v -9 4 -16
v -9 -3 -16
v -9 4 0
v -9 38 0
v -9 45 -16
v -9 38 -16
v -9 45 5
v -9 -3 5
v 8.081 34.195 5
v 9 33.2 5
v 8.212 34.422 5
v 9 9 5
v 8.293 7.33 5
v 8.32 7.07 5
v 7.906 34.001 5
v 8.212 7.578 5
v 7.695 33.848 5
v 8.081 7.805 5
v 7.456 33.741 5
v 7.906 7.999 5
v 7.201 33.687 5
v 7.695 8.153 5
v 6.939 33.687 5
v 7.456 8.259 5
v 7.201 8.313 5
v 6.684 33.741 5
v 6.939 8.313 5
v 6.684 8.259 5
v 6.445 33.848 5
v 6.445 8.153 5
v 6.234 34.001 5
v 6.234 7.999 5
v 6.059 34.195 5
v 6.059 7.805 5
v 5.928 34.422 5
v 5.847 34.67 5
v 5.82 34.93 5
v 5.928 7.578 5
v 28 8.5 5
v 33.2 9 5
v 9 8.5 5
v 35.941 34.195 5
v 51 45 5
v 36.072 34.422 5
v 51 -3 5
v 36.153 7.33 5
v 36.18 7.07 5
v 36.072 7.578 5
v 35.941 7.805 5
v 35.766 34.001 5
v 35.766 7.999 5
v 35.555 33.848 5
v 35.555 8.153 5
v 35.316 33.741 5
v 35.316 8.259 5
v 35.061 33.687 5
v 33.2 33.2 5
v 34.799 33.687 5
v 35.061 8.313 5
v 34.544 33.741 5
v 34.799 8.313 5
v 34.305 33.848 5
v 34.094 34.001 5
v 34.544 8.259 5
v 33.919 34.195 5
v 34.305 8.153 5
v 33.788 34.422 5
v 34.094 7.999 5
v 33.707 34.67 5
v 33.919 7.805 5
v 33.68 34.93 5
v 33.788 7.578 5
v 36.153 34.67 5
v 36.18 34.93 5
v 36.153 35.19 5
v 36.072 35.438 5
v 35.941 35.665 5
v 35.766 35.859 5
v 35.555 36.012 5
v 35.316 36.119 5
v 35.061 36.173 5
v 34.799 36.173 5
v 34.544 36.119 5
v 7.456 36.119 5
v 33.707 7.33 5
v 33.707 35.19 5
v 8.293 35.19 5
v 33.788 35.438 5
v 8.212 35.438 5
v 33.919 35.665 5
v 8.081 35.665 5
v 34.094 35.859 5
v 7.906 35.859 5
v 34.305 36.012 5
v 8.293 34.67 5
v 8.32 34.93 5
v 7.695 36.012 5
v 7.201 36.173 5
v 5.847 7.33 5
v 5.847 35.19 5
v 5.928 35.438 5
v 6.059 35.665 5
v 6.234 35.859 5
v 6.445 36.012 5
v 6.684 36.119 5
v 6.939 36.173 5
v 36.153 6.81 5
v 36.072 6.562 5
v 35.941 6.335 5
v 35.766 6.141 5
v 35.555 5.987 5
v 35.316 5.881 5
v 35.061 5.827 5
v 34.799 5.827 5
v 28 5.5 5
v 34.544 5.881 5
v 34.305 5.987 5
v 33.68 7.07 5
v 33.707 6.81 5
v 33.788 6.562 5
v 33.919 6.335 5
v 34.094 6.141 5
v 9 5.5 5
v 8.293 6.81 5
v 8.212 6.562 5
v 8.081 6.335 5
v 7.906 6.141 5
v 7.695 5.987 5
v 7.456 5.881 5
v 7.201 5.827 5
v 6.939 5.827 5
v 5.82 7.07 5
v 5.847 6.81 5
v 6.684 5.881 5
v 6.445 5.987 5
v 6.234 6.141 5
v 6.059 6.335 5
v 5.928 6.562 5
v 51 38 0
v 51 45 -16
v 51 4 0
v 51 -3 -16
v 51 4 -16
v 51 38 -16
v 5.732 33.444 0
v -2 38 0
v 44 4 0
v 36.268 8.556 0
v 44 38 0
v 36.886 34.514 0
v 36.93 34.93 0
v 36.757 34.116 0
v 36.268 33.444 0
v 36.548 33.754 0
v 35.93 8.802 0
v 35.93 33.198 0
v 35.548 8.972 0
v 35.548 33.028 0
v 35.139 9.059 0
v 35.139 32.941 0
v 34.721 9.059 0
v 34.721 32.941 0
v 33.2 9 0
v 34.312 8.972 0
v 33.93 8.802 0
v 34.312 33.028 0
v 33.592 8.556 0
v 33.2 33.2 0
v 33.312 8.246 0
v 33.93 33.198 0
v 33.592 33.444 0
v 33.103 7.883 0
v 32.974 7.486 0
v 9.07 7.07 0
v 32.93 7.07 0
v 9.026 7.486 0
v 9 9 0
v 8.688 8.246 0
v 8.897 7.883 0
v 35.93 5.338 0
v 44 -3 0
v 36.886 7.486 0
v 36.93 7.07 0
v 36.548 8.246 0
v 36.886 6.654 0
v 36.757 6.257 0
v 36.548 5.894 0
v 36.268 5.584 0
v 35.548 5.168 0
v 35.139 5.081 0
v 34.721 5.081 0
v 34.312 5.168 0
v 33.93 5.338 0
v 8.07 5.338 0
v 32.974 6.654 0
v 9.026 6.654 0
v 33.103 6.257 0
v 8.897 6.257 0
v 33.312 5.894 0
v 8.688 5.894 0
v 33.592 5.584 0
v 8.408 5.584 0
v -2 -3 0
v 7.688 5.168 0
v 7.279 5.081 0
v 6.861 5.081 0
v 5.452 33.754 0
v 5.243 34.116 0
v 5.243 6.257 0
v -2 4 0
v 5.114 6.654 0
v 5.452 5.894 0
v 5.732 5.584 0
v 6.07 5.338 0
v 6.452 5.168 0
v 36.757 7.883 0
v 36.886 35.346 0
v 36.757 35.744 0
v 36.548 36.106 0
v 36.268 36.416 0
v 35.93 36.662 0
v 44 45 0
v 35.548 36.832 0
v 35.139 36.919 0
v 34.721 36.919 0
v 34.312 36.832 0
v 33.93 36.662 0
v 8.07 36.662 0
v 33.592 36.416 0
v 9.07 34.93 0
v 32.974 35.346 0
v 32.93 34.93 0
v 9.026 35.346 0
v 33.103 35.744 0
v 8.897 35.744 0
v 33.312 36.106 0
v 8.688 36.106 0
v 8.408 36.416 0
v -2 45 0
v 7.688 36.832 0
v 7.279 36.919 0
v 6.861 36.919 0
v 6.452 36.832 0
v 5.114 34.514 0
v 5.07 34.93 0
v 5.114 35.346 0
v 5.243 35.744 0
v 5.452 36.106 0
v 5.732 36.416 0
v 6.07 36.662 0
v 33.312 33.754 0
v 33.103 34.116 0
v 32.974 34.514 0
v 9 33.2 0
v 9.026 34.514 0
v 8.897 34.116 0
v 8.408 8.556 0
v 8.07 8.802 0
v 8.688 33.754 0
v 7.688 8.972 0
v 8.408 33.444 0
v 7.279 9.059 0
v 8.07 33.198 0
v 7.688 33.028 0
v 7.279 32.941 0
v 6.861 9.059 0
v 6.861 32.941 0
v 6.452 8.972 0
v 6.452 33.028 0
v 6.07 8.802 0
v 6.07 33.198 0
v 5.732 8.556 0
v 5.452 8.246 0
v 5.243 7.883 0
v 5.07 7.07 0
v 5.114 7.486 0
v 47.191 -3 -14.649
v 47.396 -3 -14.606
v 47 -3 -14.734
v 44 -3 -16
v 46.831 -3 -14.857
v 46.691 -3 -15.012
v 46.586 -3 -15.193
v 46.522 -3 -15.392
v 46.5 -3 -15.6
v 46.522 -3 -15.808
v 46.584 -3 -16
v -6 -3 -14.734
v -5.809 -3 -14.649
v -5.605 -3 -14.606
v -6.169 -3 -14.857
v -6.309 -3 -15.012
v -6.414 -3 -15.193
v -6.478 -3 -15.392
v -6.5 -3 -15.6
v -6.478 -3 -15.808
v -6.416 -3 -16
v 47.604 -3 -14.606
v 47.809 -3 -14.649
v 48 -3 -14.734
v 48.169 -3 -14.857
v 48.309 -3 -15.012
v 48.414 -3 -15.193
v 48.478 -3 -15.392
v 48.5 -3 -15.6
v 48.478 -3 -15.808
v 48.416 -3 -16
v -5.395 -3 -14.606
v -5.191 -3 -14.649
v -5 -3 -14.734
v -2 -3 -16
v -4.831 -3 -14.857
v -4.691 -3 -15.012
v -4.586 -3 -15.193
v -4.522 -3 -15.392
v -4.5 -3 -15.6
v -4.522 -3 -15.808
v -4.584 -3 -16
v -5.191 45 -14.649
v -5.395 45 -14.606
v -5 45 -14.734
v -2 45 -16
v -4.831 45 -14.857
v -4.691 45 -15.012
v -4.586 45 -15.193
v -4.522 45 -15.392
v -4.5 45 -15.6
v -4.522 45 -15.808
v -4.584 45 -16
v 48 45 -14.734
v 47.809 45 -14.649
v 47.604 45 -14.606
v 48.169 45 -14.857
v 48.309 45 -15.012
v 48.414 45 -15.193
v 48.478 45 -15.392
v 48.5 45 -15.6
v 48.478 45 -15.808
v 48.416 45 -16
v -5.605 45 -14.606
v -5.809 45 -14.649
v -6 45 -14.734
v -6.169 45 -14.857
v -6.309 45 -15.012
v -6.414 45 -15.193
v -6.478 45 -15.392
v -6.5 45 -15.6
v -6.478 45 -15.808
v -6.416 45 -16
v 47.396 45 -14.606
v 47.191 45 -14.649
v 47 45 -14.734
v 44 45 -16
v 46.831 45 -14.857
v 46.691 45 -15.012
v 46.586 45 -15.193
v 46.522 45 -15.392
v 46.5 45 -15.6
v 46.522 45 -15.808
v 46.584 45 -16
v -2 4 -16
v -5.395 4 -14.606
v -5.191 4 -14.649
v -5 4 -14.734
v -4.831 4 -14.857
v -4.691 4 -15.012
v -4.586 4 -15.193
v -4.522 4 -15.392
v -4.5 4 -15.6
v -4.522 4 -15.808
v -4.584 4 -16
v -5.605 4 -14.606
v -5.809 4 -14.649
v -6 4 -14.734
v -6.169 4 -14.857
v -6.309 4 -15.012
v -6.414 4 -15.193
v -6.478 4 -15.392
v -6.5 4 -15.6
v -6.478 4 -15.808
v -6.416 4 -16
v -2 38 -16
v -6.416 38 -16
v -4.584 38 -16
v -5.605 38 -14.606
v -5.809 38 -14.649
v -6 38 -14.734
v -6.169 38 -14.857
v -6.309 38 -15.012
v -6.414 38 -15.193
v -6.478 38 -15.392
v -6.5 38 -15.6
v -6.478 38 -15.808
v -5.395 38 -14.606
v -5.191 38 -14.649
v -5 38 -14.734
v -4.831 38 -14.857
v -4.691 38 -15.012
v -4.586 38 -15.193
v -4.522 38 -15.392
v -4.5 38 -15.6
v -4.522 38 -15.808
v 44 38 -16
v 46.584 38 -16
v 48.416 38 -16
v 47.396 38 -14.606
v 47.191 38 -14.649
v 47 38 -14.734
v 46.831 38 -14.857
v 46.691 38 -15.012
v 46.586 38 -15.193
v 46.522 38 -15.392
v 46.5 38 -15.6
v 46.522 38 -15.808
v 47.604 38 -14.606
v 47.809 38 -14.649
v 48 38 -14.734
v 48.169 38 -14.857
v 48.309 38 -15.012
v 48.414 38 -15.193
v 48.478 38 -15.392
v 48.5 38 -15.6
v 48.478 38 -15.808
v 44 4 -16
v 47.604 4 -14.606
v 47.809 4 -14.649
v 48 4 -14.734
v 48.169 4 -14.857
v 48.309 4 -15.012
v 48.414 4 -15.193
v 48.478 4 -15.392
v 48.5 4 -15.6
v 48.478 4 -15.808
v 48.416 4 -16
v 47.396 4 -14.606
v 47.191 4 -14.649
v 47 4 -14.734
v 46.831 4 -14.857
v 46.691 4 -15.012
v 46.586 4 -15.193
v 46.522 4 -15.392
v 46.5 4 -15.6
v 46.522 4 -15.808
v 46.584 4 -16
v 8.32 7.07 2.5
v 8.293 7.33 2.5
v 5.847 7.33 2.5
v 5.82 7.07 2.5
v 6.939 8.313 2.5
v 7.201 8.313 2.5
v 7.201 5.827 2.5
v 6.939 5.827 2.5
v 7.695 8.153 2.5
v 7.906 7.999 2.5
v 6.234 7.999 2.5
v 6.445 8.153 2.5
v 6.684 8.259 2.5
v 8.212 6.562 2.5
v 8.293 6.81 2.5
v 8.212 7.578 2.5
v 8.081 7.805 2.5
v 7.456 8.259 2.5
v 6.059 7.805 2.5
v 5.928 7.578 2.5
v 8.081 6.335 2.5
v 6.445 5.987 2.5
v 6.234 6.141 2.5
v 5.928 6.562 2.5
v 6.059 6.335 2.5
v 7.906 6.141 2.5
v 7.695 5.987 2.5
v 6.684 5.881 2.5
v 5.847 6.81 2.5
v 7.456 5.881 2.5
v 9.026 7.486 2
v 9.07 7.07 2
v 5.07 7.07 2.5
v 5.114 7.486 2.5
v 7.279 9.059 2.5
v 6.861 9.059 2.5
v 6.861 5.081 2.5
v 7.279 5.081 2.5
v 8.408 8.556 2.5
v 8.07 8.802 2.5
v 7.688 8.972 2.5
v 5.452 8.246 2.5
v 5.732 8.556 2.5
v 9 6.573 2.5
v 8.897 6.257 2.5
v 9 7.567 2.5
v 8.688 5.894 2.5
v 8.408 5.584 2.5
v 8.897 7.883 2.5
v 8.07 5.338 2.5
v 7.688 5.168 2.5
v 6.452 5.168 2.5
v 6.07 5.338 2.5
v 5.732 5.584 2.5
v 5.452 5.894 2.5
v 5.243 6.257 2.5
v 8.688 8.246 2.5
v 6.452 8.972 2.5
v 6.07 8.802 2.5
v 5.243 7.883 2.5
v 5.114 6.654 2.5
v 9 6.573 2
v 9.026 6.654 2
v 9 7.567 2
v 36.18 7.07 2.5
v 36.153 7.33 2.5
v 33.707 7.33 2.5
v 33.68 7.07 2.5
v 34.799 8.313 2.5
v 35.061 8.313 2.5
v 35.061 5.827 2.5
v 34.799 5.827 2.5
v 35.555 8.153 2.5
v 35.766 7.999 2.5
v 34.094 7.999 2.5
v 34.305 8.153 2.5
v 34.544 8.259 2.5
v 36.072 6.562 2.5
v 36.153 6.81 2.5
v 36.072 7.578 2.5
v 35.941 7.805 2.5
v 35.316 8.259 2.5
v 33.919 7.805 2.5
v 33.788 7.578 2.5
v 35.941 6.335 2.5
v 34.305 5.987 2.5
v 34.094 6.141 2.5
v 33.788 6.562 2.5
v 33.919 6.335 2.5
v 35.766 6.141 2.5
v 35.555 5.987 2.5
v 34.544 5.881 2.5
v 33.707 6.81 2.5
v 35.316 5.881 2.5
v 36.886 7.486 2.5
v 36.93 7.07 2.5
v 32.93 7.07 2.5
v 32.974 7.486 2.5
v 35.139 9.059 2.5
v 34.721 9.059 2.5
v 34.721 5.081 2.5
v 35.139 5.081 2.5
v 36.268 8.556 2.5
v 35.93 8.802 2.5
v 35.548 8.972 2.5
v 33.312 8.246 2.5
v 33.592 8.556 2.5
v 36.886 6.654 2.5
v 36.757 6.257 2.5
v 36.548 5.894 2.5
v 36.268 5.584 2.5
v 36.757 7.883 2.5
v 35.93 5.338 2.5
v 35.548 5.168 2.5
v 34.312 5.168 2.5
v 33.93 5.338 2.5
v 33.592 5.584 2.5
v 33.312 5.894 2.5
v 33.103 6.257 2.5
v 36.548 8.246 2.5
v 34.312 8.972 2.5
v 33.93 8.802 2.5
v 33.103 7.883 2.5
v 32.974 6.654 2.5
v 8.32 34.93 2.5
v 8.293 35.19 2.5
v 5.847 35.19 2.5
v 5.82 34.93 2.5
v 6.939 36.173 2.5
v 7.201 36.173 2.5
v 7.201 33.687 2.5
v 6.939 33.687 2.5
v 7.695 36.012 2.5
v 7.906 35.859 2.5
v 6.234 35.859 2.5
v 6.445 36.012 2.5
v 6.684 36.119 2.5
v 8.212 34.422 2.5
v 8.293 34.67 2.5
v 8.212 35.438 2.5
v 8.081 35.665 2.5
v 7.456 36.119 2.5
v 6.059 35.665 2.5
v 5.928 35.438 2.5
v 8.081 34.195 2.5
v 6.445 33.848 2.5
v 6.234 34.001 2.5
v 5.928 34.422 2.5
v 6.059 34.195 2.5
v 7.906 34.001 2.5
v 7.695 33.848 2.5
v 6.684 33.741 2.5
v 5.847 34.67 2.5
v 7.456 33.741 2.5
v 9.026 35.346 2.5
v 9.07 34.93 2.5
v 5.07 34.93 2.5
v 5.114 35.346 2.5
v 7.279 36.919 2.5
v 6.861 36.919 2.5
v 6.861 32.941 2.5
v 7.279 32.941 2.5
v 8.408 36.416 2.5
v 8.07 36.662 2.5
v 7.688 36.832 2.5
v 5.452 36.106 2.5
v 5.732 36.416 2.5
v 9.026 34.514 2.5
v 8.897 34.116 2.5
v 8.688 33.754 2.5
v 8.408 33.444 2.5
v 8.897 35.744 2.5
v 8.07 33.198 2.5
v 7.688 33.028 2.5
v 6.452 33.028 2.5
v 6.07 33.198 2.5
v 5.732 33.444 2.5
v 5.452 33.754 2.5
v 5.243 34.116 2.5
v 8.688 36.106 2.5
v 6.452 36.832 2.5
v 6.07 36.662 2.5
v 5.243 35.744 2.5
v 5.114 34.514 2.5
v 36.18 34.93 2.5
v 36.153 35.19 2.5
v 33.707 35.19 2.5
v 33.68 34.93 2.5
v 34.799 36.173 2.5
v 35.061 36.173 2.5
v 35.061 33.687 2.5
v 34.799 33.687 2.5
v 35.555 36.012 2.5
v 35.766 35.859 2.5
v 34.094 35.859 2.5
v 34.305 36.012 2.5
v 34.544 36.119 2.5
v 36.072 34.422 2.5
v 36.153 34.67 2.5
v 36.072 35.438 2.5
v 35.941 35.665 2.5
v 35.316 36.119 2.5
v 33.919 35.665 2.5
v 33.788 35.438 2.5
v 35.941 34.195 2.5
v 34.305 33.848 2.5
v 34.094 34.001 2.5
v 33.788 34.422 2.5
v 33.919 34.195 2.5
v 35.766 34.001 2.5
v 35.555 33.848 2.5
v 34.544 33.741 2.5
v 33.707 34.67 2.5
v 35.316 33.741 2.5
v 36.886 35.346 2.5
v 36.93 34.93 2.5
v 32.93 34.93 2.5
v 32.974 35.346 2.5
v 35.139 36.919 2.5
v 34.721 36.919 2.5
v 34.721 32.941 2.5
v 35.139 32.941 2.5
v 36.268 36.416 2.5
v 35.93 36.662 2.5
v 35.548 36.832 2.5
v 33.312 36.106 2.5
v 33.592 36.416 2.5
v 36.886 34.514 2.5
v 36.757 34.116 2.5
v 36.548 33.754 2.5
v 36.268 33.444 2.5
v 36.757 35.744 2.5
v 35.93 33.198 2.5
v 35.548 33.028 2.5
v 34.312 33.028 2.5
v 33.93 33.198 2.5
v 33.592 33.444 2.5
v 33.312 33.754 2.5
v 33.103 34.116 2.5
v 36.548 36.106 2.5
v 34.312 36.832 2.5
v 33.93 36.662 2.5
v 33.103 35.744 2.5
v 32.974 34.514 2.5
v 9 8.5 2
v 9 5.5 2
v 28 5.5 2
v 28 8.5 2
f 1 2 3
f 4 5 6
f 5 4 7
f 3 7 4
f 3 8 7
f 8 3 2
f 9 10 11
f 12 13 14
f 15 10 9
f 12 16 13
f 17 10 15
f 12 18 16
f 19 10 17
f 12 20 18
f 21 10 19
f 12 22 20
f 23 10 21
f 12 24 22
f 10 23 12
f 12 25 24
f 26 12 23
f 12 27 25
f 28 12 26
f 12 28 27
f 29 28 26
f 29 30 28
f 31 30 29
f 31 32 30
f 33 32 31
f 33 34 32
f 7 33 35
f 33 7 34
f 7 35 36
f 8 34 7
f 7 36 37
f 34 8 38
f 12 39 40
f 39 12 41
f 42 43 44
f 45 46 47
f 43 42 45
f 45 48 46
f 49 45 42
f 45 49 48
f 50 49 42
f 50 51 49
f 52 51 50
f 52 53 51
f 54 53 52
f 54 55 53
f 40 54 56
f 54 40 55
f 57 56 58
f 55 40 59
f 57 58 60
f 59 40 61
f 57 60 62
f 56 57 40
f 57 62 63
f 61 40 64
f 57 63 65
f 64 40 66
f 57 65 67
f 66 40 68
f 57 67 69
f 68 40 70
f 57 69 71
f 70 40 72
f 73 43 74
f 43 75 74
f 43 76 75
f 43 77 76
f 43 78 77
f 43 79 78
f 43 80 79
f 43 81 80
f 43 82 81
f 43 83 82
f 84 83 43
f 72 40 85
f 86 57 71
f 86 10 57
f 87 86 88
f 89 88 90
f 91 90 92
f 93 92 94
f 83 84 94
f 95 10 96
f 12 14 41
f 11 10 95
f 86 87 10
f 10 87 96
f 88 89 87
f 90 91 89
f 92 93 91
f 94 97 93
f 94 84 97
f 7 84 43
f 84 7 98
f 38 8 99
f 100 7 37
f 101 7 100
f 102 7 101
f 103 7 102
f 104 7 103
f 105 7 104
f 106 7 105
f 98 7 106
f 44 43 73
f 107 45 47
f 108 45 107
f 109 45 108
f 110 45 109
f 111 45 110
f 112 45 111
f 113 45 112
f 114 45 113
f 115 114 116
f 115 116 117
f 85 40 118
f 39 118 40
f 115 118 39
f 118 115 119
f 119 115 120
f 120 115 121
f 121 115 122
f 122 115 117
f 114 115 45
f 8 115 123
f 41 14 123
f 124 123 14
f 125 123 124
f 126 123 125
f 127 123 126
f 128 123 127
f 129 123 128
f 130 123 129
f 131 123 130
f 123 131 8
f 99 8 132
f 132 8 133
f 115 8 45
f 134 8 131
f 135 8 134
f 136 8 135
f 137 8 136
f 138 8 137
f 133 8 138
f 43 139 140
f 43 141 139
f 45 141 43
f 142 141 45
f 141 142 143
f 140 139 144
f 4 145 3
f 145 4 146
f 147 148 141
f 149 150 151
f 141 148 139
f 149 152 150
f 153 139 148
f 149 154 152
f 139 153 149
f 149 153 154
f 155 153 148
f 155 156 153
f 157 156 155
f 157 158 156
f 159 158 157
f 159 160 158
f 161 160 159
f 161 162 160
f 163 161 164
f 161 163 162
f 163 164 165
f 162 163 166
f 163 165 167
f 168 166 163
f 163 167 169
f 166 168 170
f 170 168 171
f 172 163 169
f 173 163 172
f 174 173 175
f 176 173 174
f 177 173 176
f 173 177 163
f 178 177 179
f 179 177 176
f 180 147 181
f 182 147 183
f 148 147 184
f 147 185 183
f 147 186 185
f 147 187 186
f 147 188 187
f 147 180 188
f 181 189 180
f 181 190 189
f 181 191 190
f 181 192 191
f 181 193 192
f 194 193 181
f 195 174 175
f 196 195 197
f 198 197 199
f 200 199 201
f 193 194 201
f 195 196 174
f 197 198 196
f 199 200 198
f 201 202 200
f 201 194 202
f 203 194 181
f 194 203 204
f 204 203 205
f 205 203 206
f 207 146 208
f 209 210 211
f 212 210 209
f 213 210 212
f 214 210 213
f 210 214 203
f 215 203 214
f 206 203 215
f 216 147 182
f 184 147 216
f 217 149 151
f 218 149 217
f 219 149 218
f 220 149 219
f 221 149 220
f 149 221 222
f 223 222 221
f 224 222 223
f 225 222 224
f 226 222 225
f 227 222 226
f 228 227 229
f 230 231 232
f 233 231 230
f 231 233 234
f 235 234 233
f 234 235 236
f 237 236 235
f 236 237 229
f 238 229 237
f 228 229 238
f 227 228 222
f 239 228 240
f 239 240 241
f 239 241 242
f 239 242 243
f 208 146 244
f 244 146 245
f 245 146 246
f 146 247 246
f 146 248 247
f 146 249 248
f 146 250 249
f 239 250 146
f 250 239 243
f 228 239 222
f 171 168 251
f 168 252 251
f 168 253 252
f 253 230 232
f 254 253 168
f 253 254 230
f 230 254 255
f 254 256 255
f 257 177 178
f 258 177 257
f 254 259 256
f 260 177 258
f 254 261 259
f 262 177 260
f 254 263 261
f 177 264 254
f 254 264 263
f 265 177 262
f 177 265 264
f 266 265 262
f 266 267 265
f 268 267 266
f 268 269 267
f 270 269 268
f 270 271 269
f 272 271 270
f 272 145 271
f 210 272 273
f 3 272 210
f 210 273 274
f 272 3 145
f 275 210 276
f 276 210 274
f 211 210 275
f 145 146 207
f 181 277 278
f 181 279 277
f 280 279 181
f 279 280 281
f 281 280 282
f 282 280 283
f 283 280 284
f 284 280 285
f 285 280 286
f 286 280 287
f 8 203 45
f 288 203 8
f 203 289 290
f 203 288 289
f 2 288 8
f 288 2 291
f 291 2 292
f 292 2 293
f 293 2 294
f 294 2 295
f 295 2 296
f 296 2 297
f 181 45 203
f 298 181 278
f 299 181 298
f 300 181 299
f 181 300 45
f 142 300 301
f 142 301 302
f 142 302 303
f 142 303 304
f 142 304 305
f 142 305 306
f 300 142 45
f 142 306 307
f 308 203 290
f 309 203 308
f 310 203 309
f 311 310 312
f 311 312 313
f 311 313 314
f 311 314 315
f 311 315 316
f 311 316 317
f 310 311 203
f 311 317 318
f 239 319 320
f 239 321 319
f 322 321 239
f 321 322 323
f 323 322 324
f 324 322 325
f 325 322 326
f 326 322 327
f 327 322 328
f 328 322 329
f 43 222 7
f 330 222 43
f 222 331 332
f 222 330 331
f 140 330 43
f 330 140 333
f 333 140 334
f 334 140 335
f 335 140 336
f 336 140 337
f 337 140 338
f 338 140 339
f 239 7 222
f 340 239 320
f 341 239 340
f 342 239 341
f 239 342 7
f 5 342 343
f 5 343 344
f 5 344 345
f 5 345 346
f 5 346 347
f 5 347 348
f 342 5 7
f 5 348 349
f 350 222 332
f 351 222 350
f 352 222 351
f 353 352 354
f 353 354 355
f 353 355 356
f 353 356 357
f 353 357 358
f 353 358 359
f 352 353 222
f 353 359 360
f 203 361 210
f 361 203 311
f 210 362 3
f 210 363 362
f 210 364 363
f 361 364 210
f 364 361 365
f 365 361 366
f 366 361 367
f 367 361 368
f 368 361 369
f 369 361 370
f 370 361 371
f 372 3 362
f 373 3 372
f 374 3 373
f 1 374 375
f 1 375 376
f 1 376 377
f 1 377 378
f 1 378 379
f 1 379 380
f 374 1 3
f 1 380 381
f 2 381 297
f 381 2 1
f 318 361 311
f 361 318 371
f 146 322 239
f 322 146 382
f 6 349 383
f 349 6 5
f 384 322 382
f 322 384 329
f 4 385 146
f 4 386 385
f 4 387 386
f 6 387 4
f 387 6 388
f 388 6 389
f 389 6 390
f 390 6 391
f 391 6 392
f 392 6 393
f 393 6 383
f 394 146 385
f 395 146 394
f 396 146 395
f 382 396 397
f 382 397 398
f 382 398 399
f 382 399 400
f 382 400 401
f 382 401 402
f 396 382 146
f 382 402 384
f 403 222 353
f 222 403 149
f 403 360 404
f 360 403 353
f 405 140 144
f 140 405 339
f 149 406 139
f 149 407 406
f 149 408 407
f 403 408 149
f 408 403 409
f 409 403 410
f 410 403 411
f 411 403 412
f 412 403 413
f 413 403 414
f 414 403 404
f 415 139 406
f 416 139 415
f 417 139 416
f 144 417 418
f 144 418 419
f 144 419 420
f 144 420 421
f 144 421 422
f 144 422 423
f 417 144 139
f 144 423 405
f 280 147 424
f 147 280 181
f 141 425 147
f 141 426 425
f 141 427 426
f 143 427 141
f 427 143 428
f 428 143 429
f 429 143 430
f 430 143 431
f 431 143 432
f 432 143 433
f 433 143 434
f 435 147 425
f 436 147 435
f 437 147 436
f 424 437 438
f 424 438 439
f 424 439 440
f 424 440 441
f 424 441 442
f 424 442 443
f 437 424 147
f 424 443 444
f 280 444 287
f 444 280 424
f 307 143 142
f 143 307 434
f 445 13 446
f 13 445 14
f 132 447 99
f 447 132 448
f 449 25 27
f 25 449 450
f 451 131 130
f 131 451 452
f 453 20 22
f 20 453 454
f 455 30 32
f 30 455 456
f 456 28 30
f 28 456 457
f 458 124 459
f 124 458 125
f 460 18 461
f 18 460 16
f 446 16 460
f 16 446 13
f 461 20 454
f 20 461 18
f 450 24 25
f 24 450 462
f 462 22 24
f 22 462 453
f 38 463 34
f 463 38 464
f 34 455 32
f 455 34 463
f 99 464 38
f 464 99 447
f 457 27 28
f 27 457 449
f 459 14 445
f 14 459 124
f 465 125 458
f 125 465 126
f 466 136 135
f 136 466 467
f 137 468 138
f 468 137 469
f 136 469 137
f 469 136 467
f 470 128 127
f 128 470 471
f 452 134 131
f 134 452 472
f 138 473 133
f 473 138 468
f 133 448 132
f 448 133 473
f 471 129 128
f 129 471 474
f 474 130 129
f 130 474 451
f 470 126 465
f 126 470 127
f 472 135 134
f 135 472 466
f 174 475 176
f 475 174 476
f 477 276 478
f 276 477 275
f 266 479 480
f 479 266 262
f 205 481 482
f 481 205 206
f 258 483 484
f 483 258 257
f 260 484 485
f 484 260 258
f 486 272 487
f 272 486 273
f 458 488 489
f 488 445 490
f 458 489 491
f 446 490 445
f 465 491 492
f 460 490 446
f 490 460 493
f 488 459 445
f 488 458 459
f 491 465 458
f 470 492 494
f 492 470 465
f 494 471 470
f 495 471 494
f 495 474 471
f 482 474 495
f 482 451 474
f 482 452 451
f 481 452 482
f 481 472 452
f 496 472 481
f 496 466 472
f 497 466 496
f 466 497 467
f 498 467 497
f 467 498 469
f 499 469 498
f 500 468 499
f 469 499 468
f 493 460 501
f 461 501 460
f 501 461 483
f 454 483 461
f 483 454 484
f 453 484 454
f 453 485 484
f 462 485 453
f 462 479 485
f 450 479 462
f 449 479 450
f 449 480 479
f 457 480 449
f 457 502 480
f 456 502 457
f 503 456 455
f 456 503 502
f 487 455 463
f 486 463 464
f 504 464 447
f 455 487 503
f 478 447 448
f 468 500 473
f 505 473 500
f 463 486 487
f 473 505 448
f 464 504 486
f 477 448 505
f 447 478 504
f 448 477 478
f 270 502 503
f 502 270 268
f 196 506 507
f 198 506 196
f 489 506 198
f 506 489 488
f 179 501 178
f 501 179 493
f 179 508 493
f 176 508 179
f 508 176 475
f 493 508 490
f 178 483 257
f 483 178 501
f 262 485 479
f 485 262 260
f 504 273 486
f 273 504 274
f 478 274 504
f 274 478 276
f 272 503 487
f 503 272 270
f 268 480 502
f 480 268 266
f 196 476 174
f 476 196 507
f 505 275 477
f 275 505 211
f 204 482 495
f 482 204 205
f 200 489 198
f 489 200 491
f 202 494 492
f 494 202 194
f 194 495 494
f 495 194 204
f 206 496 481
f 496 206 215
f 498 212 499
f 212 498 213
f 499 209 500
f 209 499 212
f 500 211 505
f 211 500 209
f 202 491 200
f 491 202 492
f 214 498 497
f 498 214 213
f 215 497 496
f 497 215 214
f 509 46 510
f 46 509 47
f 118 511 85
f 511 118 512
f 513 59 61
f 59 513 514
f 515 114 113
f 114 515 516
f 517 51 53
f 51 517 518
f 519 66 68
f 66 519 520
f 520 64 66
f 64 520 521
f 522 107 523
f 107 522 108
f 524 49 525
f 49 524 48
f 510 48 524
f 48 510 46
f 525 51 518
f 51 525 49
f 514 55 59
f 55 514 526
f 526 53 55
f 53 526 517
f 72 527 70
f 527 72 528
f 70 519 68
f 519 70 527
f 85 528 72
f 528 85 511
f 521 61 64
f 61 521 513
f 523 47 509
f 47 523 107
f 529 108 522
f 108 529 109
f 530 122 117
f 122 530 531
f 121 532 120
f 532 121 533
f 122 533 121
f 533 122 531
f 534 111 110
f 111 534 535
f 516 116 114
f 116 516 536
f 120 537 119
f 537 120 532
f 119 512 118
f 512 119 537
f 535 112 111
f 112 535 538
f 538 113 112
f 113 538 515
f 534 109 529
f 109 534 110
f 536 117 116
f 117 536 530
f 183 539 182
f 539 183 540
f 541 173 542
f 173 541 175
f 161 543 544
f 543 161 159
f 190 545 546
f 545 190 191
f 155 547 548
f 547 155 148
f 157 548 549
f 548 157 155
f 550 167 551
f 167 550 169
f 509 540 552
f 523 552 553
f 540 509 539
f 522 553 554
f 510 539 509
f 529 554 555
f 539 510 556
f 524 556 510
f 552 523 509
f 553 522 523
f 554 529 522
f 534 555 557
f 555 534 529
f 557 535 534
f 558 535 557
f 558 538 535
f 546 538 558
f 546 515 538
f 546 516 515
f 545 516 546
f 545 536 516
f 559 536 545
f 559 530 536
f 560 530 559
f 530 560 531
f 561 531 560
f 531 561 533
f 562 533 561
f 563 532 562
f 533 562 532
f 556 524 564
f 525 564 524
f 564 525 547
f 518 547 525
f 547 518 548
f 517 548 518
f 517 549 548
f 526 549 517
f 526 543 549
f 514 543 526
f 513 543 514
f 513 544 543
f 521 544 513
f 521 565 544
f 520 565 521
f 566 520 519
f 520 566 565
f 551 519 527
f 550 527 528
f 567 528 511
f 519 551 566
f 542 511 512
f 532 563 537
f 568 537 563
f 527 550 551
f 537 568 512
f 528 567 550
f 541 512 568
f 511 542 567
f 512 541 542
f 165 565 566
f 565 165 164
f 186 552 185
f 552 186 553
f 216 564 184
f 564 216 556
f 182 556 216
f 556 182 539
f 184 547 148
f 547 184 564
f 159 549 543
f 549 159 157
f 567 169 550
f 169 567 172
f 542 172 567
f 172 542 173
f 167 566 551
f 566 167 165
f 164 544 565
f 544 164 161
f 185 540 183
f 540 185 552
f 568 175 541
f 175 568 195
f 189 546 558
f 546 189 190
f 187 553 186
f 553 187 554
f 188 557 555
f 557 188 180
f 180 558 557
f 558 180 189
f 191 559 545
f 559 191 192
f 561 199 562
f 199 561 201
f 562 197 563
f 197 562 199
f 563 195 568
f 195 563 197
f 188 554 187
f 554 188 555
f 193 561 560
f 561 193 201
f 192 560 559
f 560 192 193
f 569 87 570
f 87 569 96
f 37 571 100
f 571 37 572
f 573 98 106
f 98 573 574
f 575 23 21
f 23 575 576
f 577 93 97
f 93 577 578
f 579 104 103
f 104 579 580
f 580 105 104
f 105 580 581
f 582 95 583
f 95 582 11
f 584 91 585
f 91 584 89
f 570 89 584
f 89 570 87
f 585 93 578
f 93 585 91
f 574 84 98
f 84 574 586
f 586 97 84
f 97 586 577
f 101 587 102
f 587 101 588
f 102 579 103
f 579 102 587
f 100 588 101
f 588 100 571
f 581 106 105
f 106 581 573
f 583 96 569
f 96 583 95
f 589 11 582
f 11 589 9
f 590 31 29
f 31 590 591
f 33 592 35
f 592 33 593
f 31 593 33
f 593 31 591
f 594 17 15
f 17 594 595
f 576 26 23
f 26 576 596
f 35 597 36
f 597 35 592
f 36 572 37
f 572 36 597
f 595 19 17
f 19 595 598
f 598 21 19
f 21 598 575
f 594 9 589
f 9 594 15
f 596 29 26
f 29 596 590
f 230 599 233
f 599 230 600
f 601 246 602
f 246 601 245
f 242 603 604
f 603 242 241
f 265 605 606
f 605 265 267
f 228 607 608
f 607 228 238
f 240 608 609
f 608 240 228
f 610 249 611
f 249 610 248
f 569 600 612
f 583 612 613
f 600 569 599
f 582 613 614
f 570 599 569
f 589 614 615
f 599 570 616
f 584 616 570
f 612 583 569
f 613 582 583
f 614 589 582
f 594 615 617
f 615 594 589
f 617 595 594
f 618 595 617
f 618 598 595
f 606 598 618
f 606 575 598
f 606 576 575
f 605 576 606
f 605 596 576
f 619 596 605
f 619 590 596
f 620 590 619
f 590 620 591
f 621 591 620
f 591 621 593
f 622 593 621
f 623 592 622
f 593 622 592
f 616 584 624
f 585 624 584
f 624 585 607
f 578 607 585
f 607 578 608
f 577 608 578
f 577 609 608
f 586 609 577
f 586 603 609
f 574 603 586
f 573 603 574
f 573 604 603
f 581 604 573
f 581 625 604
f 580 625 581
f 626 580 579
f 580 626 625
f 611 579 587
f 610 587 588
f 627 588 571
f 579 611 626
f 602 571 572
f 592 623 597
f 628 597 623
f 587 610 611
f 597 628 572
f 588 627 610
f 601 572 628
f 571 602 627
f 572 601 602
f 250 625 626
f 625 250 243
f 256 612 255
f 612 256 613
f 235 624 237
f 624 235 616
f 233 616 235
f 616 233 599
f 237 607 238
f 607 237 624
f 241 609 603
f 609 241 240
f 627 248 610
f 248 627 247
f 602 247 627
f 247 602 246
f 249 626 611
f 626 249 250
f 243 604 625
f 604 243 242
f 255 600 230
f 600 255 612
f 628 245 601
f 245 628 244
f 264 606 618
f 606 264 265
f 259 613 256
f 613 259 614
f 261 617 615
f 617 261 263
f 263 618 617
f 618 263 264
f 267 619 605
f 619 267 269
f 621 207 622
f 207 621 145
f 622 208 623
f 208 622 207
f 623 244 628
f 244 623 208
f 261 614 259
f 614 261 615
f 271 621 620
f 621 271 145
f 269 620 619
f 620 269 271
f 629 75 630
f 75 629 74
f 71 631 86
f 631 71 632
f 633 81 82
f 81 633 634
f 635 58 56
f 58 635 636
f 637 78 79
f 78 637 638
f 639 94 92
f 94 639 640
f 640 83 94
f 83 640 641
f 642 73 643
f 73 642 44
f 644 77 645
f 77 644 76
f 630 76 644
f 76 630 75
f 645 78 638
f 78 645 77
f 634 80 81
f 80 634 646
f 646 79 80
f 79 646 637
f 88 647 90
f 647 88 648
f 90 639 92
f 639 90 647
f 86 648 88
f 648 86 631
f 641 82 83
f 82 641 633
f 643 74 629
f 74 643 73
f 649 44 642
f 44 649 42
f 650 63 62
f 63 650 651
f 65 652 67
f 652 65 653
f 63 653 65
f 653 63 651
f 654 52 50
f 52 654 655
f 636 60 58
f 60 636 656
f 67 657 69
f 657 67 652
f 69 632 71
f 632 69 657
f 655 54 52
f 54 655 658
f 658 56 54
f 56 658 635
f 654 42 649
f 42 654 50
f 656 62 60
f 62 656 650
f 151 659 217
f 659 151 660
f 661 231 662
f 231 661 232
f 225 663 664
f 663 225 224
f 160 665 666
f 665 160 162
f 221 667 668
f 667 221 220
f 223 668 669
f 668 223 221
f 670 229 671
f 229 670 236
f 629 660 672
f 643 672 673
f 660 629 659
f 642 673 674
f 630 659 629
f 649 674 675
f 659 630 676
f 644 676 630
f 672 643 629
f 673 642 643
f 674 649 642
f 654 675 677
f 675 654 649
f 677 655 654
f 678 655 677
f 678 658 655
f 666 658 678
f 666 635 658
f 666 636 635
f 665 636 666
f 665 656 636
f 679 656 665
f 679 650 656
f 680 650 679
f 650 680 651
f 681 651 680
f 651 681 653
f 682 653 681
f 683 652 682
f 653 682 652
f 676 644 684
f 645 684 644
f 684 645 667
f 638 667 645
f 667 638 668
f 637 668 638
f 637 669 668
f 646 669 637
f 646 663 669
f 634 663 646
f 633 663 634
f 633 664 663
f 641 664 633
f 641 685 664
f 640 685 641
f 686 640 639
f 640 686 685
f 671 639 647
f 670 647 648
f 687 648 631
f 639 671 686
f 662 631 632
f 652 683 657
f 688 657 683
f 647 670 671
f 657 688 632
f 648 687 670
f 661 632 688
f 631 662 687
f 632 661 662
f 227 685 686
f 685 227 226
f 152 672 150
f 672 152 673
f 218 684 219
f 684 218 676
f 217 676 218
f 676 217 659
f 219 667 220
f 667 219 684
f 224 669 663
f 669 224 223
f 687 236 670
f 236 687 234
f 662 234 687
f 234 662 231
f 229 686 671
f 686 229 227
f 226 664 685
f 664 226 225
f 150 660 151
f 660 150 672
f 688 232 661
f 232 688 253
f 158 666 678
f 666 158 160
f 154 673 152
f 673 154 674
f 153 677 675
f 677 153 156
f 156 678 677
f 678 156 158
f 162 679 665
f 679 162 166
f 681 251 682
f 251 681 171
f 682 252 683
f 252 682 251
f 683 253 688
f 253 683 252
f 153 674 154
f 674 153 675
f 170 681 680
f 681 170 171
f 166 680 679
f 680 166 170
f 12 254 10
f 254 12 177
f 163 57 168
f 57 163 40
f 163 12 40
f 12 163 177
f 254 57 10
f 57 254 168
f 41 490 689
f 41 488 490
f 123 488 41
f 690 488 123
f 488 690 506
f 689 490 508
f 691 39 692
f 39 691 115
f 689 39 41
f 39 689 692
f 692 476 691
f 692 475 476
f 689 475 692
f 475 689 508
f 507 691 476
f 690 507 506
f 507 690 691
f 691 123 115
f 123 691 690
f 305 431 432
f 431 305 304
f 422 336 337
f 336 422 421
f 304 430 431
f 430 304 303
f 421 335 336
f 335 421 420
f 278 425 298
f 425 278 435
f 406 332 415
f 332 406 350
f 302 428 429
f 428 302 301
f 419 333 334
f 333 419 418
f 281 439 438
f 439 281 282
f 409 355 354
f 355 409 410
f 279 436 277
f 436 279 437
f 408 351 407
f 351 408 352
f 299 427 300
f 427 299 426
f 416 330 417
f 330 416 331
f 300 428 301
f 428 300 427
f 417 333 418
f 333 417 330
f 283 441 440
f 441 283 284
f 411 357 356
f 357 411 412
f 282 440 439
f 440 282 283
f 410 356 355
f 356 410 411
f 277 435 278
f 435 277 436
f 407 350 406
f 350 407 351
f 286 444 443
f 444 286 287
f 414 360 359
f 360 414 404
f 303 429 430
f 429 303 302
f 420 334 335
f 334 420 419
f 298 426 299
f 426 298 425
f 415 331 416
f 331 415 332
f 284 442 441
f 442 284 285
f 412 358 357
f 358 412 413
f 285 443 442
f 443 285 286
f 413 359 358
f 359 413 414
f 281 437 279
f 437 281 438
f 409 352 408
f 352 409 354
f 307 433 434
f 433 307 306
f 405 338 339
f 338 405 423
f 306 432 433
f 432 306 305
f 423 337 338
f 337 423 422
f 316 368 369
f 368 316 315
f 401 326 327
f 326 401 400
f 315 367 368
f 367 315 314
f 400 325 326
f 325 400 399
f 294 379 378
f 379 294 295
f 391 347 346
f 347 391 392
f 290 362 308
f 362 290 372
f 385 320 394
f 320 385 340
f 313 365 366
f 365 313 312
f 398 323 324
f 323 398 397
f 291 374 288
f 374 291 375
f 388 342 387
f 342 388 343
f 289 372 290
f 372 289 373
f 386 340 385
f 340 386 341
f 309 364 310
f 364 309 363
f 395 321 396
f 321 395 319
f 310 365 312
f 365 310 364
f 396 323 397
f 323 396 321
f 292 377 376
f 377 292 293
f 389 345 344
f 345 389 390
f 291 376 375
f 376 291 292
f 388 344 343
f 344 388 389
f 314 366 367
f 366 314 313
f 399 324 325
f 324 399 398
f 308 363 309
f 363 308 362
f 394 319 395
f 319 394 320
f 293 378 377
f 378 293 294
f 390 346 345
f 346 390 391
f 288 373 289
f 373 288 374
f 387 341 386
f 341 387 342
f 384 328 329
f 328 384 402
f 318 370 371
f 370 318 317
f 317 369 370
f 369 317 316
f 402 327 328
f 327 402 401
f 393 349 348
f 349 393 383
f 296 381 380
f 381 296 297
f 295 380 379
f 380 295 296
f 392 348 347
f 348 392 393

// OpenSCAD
//camera holder

camerax = 38;
cameray=38;
cameraz=2;

camerainset = 24;
camerainseth = 17;//22;
screwd=2.3;
screwh=10;
sheadd = 3.8;
sheadh = 3;
screwoffset = 4.07;
border = 2;
tol = 0.1;

platex = camerax+22;
platey = cameray+10;
platez = 5;

pilarx = 7;

$fn=30;
fn1 = 30;
fn2 = 30;
///// modules ////////

module screw(diam1=screwd+2*tol,h1=screwh,diam2=sheadd+2*tol,h2=sheadh+0.5,fn1=fn1,fn2=fn2){
    translate([0,0,h1/2]){
        cylinder(d=diam1,h=h1,center=true,$fn=fn1);
    }//end translate
    translate([0,0,h2/2]){
        cylinder(d=diam2,h=h2,center=true,$fn=fn2);
    }//end translate
    
    }//end module


///////
difference(){
union(){
cube([camerax+2*border,cameray+2*border,cameraz]);
translate([-(platex-camerax-2*border)/2,-(platey-cameray-2*border)/2,0]){
    cube([platex,platey,platez]);
    translate([0,0,-camerainseth+1]){
        cube([pilarx,pilarx,camerainseth]);
        }
    translate([0,platey-pilarx,-camerainseth+1]){
        cube([pilarx,pilarx,camerainseth]);
        }
    translate([platex-pilarx,platey-pilarx,-camerainseth+1]){
        cube([pilarx,pilarx,camerainseth]);
        }
    translate([platex-pilarx,0,-camerainseth+1]){
        cube([pilarx,pilarx,camerainseth]);
        }
    }//end translate
}//end union
    
union(){
translate([screwoffset+border+1,screwoffset+border+1,-cameraz/2]){
    screw();
    }//end translate

translate([camerax-screwoffset+border-1,screwoffset+border+1,-cameraz/2]){
    screw();
    }//end translate

translate([screwoffset+border+1,cameray-screwoffset+border-1,-cameraz/2]){
    screw();
    }//end translate
    
translate([camerax-screwoffset+border-1,cameray-screwoffset+border-1,-cameraz/2]){
    screw();
    }//end translate
    
translate([camerax/2+border-camerainset/2,cameray/2+border-camerainset/2,-cameraz/2]){
    cube([camerainset+2*tol,camerainset+2*tol,camerainseth]);
    }//end translate
translate([camerax/2-10,5.5,+cameraz]){  
    cube([camerax/2,3,cameraz*2]);
}//end translate
translate([platex-pilarx-4.5-border/2,50,-camerainseth+1.4]){
rotate([90,0,0]){
    
    cylinder(d=2,h=70);
    }//end translate
    }//end rotate
    
translate([0-4.5-border/2,50,-camerainseth+1.4]){
rotate([90,0,0]){
    
    cylinder(d=2,h=70);
    }//end translate
    }//end rotate
}//end union
}//end difference
